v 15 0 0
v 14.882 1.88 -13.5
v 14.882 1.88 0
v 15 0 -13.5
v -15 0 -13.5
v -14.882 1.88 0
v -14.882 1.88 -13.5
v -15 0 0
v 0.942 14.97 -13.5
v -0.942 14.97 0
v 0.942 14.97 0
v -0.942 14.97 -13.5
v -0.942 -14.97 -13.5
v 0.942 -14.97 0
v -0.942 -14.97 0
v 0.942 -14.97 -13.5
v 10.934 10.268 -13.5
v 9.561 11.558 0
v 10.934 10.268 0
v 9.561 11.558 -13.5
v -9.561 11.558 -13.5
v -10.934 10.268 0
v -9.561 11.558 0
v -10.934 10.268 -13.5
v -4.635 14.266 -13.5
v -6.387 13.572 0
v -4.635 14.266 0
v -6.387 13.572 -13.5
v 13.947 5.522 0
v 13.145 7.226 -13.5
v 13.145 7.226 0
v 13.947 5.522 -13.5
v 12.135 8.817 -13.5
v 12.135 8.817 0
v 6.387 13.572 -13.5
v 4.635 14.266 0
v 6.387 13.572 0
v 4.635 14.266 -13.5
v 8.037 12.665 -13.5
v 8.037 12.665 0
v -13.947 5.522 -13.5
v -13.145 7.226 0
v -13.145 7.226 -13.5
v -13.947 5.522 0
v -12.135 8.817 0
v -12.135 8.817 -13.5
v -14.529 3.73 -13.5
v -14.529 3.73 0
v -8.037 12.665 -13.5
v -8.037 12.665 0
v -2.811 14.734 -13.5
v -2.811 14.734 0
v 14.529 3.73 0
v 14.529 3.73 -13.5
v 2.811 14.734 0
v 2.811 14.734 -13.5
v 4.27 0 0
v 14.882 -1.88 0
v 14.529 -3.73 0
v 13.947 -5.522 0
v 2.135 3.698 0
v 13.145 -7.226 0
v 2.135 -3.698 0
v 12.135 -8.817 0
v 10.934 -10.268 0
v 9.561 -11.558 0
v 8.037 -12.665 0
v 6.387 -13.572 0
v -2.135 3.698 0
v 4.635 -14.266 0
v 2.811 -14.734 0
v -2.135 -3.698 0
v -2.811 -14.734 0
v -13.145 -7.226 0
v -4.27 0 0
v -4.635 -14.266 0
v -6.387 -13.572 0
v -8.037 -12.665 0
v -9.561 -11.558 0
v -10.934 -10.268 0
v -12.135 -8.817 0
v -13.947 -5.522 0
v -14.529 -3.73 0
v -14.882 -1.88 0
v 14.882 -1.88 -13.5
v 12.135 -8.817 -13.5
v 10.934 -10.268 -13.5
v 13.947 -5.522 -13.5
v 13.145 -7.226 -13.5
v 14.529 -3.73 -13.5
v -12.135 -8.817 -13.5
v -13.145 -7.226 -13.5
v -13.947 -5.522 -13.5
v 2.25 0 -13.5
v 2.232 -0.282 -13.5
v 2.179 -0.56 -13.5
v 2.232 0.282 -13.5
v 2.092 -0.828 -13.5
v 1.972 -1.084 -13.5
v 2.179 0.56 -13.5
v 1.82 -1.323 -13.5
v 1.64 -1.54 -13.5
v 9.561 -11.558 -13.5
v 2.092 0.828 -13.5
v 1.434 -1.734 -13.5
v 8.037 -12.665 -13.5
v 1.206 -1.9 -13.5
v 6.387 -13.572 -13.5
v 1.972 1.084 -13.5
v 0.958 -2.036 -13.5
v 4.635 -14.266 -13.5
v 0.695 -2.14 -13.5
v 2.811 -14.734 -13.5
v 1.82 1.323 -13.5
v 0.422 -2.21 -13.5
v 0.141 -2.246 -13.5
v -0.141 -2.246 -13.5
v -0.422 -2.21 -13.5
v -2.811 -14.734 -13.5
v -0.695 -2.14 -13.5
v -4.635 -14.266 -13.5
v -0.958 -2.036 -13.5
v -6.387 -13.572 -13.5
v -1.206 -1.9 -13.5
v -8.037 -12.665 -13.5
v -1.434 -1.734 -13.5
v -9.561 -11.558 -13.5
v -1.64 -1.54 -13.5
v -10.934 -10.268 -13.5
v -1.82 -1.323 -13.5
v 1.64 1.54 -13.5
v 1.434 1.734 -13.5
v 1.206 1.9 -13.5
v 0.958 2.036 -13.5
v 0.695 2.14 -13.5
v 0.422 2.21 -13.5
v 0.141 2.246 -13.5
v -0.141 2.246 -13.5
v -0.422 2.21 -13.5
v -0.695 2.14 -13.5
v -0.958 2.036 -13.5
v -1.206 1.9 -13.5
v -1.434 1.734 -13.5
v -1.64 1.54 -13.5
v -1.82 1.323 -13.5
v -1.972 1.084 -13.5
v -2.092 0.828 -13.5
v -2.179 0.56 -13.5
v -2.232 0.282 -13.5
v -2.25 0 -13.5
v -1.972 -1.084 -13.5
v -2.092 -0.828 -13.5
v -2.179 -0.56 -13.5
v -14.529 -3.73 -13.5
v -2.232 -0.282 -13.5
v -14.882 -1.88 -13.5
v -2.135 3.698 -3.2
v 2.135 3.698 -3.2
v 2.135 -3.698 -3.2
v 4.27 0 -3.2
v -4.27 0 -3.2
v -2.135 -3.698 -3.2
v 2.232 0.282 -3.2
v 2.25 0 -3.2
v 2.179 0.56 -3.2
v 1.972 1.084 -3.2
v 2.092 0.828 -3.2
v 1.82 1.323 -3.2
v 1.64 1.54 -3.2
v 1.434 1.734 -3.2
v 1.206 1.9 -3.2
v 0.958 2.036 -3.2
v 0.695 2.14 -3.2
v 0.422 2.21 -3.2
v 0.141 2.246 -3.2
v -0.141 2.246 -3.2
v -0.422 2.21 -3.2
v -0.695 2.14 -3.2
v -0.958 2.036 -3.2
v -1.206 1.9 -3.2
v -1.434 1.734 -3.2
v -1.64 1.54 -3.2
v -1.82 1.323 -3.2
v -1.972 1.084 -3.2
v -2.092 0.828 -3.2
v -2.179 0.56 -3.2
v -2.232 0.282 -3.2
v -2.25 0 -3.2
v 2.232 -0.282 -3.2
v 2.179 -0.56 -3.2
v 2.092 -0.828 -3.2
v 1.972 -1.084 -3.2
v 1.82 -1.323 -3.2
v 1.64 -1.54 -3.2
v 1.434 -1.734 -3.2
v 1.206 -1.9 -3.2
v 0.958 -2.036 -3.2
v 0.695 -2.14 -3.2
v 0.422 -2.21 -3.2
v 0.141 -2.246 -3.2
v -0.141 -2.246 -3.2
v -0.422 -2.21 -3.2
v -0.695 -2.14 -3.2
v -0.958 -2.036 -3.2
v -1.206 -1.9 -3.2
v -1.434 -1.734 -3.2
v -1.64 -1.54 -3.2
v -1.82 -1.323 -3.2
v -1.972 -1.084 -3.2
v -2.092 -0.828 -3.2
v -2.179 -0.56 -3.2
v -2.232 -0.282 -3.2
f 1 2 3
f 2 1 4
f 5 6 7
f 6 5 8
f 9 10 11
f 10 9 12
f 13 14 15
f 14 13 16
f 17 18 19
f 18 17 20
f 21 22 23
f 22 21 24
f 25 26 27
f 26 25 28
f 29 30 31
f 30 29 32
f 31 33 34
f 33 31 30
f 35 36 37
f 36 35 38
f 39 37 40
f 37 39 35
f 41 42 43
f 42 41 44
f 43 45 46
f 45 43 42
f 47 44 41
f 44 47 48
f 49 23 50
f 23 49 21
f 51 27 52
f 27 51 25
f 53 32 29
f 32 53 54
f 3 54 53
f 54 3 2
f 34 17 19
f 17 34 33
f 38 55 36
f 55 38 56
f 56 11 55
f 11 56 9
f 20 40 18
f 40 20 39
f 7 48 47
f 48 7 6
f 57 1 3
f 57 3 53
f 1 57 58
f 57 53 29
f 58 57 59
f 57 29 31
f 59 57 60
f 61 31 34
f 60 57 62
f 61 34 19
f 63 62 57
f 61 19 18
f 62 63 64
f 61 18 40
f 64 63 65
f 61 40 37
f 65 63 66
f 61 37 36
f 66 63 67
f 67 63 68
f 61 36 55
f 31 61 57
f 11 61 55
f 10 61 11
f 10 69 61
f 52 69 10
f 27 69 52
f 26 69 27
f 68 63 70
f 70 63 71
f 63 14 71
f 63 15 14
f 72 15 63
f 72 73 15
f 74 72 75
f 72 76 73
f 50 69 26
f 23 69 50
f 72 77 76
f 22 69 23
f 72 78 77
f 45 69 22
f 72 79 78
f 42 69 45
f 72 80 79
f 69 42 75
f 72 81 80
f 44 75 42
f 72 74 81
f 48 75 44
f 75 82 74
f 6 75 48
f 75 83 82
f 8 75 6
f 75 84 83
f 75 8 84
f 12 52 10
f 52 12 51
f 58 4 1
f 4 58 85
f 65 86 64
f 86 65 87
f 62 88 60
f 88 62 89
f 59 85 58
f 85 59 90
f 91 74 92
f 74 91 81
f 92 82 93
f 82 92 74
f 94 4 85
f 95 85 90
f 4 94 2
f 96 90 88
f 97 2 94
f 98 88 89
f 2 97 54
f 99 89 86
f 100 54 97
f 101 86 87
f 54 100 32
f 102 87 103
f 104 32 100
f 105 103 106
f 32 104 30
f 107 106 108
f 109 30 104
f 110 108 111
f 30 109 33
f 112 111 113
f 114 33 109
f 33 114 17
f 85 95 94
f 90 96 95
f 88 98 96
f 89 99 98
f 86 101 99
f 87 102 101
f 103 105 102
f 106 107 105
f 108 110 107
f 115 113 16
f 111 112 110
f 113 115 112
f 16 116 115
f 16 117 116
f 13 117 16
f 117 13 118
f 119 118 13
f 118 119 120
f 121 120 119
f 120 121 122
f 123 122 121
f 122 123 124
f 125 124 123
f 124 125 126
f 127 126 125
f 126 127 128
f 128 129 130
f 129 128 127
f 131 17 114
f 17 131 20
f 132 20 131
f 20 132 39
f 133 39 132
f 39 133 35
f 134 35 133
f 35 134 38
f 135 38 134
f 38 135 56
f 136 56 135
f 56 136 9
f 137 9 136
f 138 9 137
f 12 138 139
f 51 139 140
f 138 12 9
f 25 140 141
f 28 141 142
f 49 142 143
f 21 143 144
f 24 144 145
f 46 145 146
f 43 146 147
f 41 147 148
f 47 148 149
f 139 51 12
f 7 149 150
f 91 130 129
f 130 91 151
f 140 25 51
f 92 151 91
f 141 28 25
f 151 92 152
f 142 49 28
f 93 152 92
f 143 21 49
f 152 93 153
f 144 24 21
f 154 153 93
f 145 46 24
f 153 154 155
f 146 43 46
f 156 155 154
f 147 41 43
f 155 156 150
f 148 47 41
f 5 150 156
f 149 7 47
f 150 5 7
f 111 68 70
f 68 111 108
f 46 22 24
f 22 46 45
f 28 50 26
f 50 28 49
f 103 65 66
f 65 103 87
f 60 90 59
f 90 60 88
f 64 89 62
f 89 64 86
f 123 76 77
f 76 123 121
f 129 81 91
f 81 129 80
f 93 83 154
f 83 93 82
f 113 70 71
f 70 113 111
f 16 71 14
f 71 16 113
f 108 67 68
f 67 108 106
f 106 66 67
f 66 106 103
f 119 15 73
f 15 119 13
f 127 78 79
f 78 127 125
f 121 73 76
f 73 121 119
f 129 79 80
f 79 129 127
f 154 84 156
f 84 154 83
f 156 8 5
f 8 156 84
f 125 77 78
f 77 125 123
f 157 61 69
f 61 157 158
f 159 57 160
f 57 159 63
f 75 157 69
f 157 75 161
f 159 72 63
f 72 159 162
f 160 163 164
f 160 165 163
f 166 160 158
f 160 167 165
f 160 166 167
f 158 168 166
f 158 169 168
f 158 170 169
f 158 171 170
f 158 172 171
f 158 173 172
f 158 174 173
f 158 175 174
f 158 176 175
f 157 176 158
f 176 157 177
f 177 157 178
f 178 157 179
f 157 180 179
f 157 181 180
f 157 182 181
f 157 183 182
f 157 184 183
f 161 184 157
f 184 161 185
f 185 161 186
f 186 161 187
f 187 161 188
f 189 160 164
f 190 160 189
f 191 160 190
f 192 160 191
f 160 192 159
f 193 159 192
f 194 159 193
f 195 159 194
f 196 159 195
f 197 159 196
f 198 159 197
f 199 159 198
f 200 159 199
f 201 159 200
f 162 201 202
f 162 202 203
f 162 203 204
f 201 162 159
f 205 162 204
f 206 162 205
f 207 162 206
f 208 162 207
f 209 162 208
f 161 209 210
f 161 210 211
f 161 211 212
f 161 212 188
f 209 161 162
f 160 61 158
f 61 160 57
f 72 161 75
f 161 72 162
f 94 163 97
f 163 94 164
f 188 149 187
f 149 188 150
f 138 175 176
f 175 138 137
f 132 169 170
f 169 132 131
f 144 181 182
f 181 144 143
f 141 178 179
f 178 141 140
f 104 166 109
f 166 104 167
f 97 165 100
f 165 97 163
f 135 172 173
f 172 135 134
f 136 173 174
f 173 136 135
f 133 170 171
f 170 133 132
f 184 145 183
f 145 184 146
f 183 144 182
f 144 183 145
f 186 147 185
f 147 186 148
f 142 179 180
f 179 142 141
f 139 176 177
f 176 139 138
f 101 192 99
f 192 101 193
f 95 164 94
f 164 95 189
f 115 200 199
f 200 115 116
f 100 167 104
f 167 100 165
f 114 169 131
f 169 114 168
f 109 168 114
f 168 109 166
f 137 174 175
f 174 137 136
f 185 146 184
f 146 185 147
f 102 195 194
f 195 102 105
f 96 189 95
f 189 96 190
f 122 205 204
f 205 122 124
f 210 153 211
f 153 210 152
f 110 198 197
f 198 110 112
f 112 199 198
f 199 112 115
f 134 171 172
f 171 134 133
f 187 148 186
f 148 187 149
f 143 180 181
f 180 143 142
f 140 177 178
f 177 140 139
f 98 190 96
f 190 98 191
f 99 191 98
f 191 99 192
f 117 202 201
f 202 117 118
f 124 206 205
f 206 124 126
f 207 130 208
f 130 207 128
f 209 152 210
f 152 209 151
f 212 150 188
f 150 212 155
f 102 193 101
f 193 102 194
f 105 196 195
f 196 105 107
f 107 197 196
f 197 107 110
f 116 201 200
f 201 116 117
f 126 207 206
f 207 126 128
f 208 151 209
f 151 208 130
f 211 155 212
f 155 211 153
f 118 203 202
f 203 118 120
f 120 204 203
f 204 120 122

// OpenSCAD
$fn = 50;


difference() {
	union() {
		translate(v = [0, 0, -13.5000000000]) {
			cylinder(h = 13.5000000000, r = 15.0000000000);
		}
		translate(v = [0, 0, -12.0000000000]) {
			cylinder(h = 12, r = 2.8750000000);
		}
	}
	union() {
		translate(v = [0, 0, 0]) {
			rotate(a = [0, 0, 0]) {
				difference() {
					union() {
						translate(v = [0, 0, -3.2000000000]) {
							linear_extrude(height = 3.2000000000) {
								polygon(points = [[4.2698000000, 0.0000000000], [2.1349000000, 3.6977552691], [-2.1349000000, 3.6977552691], [-4.2698000000, 0.0000000000], [-2.1349000000, -3.6977552691], [2.1349000000, -3.6977552691]]);
							}
						}
					}
					union();
				}
			}
		}
		#translate(v = [0, 0, -100.0000000000]) {
			cylinder(h = 200, r = 2.2500000000);
		}
	}
}
